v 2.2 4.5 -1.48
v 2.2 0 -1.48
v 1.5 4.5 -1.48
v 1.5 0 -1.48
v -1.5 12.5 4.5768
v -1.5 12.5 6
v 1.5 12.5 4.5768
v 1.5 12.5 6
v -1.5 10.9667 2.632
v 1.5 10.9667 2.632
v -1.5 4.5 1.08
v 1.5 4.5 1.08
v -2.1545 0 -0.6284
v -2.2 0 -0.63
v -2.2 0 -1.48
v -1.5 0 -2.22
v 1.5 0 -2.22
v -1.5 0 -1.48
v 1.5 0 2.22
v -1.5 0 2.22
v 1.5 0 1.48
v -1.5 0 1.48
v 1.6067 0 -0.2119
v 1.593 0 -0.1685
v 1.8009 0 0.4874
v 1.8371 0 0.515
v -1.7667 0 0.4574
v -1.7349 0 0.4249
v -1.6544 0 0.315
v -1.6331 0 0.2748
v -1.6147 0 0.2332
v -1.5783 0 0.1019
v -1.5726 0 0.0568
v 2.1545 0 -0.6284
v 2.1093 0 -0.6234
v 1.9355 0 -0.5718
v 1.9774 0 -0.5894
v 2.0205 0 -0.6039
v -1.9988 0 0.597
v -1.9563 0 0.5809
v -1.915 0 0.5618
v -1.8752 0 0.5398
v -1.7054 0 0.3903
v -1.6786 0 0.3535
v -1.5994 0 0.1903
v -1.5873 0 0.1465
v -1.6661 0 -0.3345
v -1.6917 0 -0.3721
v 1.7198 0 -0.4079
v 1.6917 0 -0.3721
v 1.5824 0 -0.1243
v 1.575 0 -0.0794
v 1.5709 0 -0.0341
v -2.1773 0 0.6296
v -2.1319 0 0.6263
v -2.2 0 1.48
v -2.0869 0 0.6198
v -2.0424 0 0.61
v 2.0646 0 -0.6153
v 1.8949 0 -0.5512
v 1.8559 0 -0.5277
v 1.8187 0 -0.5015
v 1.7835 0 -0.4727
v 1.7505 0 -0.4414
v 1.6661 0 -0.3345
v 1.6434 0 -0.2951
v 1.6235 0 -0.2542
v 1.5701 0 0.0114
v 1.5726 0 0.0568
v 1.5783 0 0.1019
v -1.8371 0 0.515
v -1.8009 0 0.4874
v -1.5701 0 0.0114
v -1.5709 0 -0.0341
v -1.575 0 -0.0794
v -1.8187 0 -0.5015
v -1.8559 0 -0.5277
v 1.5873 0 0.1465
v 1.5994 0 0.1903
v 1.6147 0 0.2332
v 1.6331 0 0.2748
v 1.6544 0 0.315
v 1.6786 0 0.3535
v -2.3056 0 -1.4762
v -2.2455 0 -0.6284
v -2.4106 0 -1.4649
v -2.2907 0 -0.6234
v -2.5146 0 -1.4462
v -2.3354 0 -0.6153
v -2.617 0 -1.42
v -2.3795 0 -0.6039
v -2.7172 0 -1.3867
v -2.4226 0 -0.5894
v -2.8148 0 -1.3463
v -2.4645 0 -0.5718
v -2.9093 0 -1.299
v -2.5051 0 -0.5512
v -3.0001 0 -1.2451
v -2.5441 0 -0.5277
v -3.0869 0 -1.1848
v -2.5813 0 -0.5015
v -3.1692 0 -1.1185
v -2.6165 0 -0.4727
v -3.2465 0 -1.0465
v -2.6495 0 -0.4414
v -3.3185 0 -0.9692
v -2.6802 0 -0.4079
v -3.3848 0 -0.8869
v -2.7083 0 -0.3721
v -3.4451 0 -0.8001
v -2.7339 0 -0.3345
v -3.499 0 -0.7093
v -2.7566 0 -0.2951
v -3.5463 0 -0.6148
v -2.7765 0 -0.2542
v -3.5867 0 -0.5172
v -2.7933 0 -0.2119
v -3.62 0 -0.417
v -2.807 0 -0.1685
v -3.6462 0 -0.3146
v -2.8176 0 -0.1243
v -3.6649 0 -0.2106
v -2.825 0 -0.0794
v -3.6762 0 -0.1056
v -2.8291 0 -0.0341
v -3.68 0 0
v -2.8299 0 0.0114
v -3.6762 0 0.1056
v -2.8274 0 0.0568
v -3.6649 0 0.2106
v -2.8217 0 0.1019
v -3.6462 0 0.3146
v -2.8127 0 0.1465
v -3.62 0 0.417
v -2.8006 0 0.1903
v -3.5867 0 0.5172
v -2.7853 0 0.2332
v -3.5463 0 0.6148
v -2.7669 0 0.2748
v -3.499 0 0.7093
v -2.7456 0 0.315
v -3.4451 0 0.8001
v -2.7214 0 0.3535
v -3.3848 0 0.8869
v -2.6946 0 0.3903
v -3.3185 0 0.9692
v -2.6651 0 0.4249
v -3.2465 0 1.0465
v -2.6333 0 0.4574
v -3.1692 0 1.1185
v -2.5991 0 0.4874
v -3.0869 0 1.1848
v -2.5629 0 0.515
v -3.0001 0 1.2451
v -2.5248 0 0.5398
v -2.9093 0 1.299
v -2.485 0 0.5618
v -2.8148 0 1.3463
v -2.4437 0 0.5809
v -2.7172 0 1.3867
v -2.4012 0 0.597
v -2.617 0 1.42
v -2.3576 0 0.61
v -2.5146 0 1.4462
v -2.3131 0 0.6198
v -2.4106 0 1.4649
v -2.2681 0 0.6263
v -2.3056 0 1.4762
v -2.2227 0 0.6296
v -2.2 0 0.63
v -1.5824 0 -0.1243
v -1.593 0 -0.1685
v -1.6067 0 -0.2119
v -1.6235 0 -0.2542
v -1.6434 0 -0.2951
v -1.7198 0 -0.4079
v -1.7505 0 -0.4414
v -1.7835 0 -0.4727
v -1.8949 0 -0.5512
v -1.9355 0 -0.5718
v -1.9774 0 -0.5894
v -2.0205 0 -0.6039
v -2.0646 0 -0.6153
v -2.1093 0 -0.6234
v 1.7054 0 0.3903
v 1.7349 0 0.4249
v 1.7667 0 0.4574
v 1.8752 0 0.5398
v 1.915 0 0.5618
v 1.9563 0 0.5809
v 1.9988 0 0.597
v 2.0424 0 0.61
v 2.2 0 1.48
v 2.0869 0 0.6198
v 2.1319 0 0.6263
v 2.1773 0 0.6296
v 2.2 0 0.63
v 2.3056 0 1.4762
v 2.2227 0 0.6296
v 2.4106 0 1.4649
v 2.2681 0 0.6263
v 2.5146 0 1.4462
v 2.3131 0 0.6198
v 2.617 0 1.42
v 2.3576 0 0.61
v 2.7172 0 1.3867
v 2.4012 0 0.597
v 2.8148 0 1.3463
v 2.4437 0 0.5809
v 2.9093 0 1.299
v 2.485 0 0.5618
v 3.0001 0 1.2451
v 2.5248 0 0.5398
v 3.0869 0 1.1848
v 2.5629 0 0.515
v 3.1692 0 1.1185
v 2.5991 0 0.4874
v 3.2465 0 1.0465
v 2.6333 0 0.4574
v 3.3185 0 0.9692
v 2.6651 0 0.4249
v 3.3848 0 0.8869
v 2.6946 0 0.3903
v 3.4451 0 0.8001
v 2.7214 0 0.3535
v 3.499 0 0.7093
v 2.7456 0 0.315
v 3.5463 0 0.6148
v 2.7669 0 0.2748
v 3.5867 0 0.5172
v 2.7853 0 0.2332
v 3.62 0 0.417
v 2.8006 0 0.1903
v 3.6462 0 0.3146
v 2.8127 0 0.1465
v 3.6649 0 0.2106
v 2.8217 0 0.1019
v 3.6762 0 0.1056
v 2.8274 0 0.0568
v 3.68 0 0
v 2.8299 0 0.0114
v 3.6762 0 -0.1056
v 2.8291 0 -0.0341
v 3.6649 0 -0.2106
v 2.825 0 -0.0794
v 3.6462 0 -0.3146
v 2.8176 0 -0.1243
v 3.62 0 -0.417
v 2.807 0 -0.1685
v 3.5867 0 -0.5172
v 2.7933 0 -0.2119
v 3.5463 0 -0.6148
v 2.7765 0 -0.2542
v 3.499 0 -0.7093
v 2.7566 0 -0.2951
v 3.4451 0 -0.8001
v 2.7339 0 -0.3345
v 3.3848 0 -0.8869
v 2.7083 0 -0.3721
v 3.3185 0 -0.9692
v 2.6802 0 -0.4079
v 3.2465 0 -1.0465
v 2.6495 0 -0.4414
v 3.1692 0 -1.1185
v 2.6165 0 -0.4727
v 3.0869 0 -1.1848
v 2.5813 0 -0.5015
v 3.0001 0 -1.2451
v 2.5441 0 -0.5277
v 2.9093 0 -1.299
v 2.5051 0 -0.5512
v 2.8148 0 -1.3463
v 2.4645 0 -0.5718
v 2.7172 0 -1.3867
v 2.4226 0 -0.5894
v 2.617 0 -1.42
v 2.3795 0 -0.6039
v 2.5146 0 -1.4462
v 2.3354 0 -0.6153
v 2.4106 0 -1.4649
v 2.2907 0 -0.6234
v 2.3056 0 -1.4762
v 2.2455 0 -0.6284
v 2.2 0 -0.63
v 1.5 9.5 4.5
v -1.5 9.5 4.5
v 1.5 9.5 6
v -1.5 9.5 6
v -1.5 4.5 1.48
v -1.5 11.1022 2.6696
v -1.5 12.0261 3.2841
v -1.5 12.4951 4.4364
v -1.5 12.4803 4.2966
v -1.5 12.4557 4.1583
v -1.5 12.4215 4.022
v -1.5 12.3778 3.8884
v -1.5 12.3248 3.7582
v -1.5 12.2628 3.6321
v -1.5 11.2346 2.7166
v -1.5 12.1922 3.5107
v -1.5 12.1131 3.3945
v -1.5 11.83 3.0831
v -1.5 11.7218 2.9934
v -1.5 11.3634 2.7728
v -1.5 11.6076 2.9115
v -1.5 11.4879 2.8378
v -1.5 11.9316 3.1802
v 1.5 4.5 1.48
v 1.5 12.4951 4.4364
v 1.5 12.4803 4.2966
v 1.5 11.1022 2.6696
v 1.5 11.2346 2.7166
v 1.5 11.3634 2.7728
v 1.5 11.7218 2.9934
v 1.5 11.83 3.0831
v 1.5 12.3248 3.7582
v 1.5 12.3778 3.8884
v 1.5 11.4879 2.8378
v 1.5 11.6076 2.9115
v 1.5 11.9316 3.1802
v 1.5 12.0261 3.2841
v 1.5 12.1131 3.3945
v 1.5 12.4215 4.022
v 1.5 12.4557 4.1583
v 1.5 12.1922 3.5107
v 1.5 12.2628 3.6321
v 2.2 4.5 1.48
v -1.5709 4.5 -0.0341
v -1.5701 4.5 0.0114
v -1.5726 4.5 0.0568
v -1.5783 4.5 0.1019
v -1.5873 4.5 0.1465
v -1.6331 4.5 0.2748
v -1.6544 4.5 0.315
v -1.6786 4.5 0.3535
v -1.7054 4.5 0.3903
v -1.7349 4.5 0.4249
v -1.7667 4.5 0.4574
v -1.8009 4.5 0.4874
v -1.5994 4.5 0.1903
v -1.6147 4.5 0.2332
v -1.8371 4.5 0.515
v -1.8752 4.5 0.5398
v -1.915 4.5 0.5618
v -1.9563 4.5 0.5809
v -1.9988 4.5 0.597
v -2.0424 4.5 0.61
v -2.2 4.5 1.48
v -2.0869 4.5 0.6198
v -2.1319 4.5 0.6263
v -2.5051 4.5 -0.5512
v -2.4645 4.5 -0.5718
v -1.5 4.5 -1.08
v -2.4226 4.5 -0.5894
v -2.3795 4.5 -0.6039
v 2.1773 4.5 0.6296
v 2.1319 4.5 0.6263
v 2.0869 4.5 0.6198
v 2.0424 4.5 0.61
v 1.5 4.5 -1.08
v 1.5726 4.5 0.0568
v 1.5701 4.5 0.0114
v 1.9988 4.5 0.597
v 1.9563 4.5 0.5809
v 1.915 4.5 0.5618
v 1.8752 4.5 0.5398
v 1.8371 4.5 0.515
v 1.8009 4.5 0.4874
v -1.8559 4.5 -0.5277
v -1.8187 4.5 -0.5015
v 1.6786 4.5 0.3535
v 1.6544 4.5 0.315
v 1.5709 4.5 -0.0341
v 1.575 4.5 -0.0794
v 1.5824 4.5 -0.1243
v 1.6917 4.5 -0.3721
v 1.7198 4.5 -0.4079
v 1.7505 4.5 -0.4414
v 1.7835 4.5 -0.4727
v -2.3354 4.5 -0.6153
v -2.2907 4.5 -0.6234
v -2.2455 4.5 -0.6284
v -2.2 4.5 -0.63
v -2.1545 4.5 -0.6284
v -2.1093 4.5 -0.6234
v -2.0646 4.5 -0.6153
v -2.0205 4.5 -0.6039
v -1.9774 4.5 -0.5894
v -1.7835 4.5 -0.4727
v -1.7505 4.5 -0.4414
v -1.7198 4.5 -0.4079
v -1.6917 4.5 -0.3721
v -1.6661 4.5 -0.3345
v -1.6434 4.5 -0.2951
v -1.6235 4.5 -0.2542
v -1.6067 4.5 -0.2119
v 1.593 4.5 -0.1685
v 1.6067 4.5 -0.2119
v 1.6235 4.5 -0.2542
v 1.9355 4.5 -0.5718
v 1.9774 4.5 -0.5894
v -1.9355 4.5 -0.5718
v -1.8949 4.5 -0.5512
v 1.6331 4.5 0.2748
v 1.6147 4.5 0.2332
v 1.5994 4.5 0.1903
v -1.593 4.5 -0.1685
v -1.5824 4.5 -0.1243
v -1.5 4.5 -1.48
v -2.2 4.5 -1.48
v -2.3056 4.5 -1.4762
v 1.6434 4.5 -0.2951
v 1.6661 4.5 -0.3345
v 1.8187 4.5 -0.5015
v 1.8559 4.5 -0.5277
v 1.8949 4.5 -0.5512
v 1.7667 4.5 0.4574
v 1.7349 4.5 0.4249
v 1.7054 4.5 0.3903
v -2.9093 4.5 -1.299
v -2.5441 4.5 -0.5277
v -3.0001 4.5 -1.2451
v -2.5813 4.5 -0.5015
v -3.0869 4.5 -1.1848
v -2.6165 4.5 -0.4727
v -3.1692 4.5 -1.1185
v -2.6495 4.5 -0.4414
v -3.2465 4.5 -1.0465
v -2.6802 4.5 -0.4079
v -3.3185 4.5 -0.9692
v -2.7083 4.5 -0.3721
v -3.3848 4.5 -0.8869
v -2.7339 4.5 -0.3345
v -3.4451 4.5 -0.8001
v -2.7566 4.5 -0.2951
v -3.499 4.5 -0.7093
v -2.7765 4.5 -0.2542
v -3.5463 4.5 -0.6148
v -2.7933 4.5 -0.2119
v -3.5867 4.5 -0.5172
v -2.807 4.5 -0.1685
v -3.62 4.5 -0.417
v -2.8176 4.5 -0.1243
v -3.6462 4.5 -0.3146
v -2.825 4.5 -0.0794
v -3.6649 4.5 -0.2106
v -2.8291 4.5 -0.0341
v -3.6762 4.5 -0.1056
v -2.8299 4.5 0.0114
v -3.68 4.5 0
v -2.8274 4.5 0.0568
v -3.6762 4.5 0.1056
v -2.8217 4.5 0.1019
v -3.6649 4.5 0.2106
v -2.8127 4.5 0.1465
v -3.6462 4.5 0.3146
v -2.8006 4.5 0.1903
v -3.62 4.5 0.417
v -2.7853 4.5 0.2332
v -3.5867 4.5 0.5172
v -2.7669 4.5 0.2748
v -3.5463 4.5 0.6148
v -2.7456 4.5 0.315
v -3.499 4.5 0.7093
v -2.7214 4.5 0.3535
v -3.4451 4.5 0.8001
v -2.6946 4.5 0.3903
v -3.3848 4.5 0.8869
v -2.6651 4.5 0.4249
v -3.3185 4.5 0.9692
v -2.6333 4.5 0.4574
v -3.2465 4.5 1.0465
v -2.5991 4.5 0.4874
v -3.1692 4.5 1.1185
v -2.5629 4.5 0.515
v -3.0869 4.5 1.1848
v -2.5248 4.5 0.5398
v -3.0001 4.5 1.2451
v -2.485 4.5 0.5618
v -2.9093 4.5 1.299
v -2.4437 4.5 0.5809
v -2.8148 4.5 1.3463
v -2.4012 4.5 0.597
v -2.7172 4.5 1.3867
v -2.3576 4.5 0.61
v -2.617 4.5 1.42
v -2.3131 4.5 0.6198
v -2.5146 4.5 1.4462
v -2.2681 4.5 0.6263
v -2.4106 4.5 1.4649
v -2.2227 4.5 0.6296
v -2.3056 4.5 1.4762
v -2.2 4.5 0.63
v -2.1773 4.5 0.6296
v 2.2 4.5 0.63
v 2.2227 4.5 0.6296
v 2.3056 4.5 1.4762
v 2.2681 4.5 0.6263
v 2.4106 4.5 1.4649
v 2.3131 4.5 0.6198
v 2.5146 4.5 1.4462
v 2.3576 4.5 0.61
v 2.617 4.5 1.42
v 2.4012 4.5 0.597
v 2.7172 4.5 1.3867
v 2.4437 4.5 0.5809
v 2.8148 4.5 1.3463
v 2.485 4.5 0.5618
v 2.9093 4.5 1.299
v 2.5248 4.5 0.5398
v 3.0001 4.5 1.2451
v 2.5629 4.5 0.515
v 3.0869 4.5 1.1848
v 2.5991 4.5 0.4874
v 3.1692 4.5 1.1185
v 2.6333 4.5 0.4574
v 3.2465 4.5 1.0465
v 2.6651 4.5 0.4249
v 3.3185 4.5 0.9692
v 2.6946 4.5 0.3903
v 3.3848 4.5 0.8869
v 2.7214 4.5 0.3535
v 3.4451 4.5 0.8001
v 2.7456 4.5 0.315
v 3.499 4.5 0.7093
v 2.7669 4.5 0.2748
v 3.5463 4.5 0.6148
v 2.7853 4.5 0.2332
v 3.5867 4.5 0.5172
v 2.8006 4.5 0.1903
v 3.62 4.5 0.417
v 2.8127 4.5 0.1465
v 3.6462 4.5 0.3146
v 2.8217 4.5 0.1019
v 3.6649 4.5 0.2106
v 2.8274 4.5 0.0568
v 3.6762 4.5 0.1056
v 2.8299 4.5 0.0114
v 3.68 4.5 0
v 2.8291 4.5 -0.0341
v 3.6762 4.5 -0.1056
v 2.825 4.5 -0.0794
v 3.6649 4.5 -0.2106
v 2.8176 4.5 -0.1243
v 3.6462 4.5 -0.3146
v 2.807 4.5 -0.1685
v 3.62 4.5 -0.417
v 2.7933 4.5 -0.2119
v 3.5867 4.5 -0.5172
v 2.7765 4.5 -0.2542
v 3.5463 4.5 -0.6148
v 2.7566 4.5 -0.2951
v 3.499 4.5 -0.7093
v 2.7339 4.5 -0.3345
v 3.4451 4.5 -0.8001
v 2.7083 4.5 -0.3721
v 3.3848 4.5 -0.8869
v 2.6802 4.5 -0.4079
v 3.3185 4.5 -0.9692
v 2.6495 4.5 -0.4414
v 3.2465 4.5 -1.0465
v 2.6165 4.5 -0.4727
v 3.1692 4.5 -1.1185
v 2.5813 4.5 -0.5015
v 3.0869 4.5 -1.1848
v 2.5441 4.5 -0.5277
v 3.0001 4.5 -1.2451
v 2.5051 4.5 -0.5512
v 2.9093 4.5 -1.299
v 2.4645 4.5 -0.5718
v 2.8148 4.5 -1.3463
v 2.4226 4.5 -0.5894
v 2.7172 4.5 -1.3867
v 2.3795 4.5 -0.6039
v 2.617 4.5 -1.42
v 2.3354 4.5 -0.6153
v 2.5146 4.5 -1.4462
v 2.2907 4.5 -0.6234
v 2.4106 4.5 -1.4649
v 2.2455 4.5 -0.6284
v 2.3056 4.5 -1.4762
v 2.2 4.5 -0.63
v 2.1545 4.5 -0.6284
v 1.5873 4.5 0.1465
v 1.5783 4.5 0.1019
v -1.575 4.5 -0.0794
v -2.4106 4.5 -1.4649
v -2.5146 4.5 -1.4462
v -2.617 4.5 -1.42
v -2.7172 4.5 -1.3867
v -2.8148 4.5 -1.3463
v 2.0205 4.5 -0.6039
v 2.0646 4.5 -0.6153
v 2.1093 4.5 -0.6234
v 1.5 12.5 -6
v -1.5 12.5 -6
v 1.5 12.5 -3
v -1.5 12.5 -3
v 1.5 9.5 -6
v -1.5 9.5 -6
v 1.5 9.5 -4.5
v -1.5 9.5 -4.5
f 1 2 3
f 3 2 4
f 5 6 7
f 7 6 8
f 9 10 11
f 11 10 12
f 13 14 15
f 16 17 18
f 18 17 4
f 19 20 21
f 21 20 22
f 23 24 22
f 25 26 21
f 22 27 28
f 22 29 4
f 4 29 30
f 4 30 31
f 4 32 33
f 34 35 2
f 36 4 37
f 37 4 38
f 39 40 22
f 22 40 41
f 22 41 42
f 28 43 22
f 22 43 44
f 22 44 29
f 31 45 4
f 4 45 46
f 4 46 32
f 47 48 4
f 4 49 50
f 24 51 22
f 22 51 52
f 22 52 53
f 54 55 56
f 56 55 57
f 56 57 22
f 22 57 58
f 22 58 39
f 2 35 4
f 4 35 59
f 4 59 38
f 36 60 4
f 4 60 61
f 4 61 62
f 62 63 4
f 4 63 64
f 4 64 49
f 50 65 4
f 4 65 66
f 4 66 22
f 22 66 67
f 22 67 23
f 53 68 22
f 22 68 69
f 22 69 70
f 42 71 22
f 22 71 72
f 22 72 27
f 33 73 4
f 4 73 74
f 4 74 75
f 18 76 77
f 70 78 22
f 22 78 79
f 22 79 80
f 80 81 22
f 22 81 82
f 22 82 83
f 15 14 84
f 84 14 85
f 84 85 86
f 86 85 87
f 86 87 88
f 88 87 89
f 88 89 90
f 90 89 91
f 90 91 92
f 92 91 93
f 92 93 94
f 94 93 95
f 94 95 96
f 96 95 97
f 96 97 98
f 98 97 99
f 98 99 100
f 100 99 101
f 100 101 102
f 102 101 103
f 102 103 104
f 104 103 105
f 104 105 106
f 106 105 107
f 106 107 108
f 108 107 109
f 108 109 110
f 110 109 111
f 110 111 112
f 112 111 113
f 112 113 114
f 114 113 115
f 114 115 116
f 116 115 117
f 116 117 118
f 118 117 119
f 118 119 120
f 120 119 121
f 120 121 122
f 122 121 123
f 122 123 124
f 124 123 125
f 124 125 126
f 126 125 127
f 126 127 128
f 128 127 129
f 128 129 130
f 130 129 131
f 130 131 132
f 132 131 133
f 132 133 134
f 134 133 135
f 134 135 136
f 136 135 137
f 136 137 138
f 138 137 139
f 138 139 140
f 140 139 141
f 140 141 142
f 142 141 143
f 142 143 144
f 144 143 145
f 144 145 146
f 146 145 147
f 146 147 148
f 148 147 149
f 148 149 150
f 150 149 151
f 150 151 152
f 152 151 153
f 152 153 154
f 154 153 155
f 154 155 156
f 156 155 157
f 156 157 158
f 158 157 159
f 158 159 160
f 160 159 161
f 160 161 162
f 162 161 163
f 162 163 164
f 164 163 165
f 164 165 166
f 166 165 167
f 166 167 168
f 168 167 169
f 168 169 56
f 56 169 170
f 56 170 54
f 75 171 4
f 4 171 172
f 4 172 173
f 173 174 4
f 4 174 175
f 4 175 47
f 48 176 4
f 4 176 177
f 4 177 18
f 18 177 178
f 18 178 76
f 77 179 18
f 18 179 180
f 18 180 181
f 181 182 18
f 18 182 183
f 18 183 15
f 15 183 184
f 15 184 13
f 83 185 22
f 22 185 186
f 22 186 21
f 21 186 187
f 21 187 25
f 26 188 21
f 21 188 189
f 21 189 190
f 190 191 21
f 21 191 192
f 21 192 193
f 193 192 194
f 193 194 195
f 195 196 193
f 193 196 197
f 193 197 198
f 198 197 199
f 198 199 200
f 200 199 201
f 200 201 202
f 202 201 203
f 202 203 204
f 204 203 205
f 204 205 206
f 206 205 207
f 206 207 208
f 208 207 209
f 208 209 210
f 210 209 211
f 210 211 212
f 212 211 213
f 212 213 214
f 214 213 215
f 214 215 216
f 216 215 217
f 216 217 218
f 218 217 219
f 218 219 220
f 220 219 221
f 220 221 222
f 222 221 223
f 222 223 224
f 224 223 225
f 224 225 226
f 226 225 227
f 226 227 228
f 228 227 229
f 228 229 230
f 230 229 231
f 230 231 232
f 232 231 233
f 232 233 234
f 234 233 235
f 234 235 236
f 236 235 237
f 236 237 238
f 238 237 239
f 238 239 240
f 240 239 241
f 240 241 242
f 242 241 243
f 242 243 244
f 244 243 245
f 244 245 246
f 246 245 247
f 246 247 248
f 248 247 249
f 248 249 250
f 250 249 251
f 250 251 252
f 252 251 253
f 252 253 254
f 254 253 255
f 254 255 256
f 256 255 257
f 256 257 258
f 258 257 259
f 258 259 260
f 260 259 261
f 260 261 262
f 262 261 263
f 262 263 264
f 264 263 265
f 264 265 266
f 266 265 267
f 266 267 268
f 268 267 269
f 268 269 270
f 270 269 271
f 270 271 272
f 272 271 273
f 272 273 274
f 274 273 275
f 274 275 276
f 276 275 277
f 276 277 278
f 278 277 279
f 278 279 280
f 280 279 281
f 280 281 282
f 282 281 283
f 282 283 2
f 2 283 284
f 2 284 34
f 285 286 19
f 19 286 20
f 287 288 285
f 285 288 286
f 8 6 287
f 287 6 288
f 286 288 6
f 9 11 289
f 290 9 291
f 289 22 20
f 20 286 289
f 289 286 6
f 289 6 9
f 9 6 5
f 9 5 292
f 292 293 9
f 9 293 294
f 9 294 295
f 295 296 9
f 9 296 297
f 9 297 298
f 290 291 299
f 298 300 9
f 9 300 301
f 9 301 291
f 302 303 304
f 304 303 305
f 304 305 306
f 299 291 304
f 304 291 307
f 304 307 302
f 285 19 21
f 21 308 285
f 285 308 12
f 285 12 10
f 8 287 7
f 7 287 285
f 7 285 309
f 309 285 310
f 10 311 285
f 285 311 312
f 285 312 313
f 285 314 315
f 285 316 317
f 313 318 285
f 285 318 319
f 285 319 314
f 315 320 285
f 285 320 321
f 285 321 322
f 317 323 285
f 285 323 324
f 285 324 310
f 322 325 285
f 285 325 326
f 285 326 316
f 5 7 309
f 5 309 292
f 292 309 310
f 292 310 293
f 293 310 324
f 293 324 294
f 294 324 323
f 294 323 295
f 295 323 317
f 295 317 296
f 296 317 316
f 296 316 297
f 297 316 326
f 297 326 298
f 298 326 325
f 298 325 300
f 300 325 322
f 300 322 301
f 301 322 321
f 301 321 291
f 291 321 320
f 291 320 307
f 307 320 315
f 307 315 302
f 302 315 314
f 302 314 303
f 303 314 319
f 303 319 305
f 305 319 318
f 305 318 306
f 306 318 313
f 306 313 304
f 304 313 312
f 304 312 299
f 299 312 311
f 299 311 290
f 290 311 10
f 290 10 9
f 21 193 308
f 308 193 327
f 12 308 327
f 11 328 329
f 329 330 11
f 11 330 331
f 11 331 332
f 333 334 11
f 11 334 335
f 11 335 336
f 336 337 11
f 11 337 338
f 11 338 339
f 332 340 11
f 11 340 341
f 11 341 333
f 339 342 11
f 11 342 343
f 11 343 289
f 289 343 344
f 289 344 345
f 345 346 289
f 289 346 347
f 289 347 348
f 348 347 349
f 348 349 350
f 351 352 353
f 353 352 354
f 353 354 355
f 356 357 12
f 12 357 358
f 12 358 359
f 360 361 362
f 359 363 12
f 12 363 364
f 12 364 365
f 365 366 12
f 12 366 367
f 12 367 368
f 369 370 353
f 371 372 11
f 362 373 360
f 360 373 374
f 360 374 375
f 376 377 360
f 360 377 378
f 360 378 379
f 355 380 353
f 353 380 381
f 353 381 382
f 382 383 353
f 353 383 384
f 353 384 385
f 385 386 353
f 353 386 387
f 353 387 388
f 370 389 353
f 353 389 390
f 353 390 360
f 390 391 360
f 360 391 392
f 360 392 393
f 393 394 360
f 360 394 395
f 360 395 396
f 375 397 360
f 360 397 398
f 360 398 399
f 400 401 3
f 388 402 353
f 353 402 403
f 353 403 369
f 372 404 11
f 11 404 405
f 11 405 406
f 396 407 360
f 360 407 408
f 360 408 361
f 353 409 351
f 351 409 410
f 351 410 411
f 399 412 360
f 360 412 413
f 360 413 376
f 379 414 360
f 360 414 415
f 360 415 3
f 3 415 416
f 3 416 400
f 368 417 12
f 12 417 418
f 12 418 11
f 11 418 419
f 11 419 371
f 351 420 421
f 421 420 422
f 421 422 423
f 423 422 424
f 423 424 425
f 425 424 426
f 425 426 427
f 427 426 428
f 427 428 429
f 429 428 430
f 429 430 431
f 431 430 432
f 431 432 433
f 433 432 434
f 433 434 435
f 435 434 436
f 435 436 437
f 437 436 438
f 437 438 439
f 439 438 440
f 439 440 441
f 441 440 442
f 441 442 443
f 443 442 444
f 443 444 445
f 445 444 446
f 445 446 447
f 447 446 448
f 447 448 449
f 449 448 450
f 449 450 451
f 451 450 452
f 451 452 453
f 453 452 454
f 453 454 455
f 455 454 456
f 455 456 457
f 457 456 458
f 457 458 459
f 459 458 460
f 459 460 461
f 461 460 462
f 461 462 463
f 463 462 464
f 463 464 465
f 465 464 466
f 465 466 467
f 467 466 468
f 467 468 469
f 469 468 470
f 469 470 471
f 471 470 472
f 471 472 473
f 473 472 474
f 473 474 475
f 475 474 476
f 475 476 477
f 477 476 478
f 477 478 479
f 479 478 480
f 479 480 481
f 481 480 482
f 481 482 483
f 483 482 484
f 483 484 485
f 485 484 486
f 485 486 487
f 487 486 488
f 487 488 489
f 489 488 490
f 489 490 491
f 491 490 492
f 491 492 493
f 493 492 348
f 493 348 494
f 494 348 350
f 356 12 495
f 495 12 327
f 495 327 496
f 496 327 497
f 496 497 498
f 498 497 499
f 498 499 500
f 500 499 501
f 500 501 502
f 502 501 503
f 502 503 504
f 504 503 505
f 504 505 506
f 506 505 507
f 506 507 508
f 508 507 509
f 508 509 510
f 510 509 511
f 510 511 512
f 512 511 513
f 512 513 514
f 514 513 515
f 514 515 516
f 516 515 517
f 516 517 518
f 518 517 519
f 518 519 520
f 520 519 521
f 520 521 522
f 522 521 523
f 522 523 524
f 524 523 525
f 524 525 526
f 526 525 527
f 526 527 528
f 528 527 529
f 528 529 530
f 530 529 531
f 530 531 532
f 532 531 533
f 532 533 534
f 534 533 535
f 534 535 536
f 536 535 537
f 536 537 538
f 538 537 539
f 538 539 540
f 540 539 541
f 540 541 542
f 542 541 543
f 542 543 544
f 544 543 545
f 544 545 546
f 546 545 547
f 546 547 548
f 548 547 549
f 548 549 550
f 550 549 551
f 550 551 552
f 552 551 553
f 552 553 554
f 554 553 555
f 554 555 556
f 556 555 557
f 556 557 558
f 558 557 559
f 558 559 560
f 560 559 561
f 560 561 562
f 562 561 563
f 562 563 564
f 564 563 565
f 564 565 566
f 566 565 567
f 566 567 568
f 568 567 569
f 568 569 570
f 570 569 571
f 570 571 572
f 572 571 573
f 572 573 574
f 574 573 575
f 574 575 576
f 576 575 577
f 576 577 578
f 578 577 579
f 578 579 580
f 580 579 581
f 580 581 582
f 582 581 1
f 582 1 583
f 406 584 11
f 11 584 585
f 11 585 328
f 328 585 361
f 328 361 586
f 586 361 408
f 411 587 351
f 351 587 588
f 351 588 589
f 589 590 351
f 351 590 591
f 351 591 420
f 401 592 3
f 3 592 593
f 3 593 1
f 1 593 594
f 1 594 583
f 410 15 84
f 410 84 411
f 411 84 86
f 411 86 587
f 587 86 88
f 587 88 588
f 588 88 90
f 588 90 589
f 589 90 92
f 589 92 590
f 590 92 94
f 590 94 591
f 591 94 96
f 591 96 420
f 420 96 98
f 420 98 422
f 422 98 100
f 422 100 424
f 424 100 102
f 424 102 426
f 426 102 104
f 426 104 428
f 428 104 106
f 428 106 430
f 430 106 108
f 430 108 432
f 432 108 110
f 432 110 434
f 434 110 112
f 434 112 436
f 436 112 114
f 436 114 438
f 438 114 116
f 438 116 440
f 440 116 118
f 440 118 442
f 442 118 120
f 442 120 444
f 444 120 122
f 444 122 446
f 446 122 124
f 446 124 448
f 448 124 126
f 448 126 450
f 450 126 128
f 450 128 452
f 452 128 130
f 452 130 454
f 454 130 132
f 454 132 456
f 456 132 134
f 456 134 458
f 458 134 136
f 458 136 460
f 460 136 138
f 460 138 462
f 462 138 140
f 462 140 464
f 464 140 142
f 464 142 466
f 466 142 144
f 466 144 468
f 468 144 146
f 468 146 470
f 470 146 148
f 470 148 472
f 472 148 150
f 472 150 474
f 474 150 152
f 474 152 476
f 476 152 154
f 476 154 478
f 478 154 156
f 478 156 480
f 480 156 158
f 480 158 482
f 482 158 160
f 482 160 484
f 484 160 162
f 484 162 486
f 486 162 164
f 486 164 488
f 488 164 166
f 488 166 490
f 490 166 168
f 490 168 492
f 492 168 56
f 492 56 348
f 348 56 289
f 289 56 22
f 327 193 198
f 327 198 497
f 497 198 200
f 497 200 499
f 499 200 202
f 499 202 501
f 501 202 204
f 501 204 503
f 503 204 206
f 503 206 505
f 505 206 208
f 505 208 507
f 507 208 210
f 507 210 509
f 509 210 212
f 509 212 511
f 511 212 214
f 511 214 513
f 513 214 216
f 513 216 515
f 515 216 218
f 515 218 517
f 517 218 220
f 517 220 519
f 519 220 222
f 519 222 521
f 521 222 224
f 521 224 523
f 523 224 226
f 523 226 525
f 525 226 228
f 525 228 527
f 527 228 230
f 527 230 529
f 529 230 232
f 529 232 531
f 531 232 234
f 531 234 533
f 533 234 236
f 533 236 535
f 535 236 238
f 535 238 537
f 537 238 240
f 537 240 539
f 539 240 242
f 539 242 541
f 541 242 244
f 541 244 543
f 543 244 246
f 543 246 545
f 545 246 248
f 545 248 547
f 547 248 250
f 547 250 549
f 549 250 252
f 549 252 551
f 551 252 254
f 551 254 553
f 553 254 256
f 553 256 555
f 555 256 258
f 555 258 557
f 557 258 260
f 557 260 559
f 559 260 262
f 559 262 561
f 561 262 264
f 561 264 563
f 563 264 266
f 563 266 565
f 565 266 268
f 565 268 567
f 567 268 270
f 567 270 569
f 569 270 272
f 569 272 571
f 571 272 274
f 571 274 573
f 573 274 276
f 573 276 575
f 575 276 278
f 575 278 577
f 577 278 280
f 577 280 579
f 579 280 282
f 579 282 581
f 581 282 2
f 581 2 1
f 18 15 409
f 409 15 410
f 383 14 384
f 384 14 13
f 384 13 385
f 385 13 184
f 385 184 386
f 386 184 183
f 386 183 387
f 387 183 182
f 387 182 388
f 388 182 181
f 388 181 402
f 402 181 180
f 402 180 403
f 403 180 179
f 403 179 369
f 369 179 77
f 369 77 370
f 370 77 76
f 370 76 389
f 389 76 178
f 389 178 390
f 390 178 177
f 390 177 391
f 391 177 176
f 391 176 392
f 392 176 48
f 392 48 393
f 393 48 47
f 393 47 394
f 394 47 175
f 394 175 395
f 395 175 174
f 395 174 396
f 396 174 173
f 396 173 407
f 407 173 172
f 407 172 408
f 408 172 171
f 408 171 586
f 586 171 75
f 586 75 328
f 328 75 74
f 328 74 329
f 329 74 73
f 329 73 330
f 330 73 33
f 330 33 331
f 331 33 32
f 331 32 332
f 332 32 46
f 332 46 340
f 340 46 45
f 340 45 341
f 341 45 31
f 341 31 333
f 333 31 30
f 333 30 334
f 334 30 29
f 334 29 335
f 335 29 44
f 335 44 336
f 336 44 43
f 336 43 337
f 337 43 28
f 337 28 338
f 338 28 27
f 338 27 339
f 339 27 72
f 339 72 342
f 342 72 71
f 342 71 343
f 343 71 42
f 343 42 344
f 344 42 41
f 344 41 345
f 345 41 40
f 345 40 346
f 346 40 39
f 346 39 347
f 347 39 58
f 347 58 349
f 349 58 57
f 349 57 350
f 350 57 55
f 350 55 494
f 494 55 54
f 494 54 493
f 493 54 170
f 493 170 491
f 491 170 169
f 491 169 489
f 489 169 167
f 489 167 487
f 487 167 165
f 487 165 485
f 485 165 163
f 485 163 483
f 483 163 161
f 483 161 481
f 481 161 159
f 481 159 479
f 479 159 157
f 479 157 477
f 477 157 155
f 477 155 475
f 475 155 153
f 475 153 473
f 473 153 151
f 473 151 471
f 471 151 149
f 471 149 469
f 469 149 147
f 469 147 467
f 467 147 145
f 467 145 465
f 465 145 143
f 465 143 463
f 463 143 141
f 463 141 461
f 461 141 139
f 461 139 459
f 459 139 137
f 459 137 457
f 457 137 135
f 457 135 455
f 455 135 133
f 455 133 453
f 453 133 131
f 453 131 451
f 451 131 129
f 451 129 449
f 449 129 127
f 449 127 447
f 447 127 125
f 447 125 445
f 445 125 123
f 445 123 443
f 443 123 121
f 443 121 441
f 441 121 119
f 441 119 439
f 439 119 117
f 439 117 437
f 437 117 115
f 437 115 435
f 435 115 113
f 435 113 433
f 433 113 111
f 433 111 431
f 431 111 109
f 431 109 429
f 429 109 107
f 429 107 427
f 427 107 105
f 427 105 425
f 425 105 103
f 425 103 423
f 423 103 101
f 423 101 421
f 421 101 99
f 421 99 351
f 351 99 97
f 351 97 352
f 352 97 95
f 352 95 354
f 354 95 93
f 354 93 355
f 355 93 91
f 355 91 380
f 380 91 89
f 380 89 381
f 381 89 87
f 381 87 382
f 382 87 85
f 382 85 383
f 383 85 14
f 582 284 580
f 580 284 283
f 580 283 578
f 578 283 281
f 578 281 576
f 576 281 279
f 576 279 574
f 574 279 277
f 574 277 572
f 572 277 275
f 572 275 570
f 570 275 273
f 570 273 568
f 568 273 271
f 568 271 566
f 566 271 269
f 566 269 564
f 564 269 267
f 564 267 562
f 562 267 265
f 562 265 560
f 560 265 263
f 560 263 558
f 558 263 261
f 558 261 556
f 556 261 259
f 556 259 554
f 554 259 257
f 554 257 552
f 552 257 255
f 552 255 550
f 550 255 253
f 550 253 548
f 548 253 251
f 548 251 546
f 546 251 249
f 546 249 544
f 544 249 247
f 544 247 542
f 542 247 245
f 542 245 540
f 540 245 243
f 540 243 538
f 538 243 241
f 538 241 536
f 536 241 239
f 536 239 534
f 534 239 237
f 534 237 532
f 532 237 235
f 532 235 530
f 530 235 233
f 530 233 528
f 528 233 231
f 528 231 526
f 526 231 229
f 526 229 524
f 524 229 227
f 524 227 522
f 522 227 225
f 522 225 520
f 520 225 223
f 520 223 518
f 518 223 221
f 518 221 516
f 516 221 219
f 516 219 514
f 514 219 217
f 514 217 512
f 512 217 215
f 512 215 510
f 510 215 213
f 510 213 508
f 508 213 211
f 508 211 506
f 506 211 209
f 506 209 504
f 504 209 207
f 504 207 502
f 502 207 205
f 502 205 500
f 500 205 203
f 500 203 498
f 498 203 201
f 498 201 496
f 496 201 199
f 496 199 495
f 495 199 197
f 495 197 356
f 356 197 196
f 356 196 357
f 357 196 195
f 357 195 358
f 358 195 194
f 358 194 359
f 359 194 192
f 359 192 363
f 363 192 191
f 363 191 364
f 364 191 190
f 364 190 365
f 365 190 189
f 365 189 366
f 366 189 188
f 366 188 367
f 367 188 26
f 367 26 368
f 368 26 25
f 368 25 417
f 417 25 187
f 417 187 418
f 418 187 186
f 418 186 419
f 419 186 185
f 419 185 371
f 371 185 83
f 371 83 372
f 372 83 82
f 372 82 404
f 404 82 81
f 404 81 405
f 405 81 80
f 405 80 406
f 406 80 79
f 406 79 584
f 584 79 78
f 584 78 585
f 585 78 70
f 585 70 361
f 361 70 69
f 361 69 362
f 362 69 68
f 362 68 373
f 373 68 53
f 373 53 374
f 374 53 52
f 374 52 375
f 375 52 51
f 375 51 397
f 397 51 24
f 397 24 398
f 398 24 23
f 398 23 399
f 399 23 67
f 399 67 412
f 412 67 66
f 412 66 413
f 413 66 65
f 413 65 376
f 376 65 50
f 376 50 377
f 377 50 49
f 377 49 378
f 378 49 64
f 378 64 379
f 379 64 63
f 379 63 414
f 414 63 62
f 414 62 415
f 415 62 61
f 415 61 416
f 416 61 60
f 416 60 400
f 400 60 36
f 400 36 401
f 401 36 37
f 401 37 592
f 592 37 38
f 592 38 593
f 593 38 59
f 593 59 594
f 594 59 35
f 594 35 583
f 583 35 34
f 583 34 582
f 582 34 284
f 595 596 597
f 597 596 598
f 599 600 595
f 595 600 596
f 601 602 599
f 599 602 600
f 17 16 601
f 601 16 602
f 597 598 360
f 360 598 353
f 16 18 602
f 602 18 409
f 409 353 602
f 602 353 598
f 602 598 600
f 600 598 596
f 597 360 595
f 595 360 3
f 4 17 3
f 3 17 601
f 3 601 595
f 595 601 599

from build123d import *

# Parameters (mm, degrees)
BOSS_EXTRUDE2_DEPTH = 1.5
FILLET1_R           = 2
SKETCH1_R           = 0.63
BOSS_EXTRUDE3_DEPTH = 4.5


with BuildPart() as part:
    # Sketch2 → Boss-Extrude2 (new, symmetric)
    with BuildSketch(Plane(origin=(0, 0, 0), x_dir=(0, 0, -1), z_dir=(1, 0, 0))):
        Polygon((-6, 12.5), (-6, 9.5), (-4.5, 9.5), (-2.22, 0), (0, 0), (-3, 12.5), align=None)
    boss_extrude2 = extrude(amount=BOSS_EXTRUDE2_DEPTH, both=True)

    # Fillet1
    fillet1_edges = [part.edges().sort_by_distance(p)[0] for p in [
        (0, 12.5, 3),
    ]]
    fillet(fillet1_edges, radius=FILLET1_R)

    # Sketch1 → Boss-Extrude3 (add)
    with BuildSketch(Plane(origin=(0, 0, 0), x_dir=(1, 0, 0), z_dir=(0, 1, 0))):
        with BuildLine():
            Line((-2.2, 1.48), (2.2, 1.48))
            ThreePointArc((2.2, 1.48), (3.68, 0), (2.2, -1.48))
            Line((2.2, -1.48), (-2.2, -1.48))
            ThreePointArc((-2.2, -1.48), (-3.68, 0), (-2.2, 1.48))
        make_face()
        with Locations((-2.2, 0)):
            Circle(SKETCH1_R, mode=Mode.SUBTRACT)
        with Locations((2.2, 0)):
            Circle(SKETCH1_R, mode=Mode.SUBTRACT)
    extrude(amount=BOSS_EXTRUDE3_DEPTH)

    # Mirror1: Boss-Extrude2 across plane
    add(boss_extrude2.mirror(Plane.XY))


solid = part.part
